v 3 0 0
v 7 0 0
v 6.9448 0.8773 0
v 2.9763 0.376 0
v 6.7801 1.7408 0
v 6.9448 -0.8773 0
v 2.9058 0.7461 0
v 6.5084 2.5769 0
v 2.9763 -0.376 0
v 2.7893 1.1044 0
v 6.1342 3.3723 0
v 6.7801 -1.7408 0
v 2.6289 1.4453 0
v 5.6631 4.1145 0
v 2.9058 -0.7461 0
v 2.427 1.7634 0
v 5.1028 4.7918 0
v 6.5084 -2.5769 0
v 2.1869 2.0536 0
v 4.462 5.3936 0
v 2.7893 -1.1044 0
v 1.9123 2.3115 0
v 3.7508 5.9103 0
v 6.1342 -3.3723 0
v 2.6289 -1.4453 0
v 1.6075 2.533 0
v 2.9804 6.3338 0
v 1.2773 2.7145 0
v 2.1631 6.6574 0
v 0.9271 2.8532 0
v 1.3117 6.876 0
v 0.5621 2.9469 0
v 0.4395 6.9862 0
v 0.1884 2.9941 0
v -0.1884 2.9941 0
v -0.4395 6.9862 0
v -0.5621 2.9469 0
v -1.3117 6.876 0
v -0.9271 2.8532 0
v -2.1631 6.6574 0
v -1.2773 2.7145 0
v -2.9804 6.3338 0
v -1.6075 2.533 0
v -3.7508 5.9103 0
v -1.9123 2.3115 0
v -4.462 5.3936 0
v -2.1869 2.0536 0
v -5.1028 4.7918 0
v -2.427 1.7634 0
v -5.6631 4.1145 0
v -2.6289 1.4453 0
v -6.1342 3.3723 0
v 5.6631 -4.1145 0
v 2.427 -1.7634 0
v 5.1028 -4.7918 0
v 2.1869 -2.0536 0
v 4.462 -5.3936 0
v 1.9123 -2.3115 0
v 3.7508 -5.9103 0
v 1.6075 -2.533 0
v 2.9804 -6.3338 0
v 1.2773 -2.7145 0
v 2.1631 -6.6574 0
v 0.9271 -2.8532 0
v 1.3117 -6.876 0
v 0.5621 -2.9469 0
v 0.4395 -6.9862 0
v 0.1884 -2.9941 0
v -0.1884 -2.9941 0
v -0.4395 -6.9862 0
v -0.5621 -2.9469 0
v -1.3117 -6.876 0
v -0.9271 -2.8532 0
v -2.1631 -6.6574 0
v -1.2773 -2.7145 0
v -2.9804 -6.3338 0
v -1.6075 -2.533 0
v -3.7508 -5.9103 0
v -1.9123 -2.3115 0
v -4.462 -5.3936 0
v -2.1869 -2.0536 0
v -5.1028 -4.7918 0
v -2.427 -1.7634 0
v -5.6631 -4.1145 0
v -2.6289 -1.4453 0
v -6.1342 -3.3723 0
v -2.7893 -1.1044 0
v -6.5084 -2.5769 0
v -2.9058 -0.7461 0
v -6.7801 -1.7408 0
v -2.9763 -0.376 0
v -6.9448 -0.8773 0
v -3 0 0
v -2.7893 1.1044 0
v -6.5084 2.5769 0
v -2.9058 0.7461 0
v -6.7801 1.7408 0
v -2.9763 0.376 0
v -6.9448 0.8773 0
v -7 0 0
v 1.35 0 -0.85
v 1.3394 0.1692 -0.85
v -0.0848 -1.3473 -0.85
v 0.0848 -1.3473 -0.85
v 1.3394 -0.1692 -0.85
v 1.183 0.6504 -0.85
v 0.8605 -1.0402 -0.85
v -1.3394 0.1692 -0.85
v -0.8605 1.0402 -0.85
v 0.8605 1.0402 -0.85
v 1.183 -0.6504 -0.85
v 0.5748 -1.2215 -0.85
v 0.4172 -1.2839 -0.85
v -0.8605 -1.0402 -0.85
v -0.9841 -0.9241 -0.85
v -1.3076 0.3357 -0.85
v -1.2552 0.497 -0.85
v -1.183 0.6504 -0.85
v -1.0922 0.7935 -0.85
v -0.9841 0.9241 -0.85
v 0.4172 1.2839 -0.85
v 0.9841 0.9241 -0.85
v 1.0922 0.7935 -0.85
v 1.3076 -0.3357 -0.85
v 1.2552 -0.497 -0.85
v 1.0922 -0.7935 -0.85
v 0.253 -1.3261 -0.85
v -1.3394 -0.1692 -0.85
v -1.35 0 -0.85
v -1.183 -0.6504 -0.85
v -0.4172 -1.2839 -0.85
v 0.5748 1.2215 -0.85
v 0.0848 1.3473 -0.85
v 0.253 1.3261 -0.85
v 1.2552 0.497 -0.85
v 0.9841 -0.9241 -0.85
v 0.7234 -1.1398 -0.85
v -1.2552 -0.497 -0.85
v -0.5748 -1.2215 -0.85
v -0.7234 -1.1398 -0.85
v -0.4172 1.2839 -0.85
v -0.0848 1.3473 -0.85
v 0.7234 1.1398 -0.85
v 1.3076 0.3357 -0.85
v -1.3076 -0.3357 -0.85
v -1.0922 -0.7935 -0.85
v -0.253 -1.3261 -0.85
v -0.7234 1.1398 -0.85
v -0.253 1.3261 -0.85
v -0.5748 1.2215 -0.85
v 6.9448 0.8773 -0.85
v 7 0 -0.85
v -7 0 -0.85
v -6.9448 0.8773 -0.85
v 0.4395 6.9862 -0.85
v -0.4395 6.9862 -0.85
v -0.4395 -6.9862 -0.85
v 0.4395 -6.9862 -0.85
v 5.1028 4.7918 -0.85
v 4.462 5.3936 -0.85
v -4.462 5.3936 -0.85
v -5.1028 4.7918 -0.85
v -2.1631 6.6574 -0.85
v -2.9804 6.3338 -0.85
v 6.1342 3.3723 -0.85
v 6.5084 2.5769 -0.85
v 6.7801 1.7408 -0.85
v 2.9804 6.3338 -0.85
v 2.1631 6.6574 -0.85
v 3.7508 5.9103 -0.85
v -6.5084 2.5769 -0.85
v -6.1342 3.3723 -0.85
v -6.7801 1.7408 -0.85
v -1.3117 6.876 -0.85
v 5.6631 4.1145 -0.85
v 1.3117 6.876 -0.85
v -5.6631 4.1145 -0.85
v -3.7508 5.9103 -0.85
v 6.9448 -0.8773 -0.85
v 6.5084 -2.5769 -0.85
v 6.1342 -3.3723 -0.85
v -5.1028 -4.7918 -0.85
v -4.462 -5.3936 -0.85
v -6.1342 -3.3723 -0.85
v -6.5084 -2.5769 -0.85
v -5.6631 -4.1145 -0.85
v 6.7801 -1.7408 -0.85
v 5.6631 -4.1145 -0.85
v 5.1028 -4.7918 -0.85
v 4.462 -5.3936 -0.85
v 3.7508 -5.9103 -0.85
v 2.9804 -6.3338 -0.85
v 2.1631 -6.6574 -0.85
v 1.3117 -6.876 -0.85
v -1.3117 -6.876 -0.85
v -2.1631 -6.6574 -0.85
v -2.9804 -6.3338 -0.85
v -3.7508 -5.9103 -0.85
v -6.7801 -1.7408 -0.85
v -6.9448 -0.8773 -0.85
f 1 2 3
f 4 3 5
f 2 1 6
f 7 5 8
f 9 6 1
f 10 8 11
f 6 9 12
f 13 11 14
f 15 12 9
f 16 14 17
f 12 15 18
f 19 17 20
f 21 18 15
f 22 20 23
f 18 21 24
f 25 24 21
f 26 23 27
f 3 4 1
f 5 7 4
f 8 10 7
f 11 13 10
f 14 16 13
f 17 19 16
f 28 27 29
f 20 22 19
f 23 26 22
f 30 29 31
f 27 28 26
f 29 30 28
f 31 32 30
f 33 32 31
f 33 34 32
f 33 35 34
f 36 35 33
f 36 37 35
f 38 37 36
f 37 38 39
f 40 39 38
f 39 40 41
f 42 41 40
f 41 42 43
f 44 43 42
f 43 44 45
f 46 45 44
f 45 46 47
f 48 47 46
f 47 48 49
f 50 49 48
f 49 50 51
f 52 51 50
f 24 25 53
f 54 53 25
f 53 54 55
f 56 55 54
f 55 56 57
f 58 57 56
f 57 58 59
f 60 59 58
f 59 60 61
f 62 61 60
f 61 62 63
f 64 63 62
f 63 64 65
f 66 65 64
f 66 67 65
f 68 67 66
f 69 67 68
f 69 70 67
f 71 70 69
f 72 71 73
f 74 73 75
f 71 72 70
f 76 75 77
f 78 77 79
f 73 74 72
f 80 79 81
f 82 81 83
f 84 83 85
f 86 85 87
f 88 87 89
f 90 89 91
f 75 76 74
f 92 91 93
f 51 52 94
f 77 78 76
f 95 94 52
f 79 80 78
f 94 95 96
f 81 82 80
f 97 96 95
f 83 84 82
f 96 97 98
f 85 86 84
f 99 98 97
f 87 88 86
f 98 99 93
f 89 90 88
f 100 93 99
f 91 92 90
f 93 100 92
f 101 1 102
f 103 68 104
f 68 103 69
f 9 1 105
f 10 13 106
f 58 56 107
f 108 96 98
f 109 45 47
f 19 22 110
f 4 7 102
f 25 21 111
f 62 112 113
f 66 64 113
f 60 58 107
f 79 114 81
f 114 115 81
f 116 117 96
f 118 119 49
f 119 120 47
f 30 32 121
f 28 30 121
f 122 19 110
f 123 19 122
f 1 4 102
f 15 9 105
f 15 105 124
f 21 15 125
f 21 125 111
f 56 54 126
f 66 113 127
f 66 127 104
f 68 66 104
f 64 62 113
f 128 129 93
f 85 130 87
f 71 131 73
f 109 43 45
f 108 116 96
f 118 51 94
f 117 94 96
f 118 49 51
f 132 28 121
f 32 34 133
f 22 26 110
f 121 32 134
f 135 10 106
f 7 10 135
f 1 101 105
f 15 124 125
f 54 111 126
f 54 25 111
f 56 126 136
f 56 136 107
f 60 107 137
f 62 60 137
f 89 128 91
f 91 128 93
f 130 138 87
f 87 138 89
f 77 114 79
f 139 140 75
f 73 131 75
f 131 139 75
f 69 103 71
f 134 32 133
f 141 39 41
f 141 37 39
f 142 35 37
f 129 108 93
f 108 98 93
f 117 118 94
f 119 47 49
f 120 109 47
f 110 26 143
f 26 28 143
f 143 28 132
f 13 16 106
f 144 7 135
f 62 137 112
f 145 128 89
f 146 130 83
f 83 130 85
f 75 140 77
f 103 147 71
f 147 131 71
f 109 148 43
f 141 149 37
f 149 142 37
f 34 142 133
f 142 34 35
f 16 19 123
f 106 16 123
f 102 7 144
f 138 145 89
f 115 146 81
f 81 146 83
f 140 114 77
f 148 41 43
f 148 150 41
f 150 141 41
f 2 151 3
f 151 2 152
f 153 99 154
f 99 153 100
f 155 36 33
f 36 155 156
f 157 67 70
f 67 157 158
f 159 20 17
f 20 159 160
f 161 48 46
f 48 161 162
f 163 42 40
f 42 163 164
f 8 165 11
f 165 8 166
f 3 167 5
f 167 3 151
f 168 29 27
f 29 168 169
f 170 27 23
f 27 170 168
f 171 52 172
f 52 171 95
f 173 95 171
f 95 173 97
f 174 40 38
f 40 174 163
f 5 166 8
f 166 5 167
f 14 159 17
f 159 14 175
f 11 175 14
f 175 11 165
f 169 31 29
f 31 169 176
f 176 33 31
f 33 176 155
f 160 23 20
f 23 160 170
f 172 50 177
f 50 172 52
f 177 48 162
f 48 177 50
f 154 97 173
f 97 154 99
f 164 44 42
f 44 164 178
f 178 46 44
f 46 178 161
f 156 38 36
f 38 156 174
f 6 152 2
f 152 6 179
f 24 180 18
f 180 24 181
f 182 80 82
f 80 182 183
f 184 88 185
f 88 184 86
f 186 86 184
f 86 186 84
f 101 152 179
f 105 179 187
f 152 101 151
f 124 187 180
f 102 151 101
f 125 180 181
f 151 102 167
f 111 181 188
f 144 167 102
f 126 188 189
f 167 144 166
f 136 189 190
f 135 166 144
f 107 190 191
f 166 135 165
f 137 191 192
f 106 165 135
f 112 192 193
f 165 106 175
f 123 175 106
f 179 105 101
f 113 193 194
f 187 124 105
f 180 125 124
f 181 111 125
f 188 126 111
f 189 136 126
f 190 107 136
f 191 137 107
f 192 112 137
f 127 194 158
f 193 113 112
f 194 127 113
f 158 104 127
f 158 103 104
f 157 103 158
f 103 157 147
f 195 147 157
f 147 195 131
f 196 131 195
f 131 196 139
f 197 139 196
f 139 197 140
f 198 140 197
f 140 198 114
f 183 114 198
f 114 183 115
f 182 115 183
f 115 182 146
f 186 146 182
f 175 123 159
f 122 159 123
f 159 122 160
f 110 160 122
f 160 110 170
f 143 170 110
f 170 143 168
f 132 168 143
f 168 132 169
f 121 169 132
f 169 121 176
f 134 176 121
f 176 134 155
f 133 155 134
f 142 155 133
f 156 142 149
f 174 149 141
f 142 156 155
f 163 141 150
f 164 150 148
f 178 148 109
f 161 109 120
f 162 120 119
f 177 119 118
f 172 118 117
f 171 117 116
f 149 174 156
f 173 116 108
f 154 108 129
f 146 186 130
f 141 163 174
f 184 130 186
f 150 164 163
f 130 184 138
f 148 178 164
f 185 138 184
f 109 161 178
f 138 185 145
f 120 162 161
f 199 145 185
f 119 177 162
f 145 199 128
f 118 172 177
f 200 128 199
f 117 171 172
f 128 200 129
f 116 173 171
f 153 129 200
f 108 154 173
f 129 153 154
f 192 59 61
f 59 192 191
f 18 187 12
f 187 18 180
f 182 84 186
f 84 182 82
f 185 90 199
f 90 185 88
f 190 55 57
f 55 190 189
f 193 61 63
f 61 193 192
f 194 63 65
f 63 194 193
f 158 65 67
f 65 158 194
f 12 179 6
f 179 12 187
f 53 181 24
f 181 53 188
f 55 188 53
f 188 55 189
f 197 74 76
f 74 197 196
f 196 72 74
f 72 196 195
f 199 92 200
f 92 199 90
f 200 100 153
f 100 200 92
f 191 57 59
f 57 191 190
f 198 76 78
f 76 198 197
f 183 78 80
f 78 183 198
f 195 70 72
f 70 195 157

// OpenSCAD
$fn = 50;


difference() {
	union() {
		translate(v = [0, 0, -0.8500000000]) {
			cylinder(h = 0.8500000000, r = 7.0000000000);
		}
	}
	union() {
		translate(v = [0, 0, 0]) {
			rotate(a = [0, 0, 0]) {
				difference() {
					union() {
						translate(v = [0, 0, -3.8500000000]) {
							cylinder(h = 3.8500000000, r = 1.0000000000);
						}
						translate(v = [0, 0, -0.8500000000]) {
							cylinder(h = 0.8500000000, r1 = 1.3500000000, r2 = 3.0000000000);
						}
						translate(v = [0, 0, -3.8500000000]) {
							cylinder(h = 3.8500000000, r = 1.3500000000);
						}
						translate(v = [0, 0, -3.8500000000]) {
							cylinder(h = 3.8500000000, r = 1.0000000000);
						}
					}
					union();
				}
			}
		}
	}
}
